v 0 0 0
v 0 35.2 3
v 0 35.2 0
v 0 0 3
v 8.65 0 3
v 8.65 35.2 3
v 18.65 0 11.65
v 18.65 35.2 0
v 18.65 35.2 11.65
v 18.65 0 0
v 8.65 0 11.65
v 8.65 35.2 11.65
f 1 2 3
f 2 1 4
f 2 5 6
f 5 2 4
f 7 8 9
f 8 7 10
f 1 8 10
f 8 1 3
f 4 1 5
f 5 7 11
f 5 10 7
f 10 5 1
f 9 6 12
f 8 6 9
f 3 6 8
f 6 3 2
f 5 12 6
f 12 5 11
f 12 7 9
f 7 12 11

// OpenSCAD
// Base plate
union() {
    cube([18.65, 35.2,3]);
    translate([8.65,0,3]) {
        color([1,0,0])
        cube([10,35.2,8.65]);
    }
}
